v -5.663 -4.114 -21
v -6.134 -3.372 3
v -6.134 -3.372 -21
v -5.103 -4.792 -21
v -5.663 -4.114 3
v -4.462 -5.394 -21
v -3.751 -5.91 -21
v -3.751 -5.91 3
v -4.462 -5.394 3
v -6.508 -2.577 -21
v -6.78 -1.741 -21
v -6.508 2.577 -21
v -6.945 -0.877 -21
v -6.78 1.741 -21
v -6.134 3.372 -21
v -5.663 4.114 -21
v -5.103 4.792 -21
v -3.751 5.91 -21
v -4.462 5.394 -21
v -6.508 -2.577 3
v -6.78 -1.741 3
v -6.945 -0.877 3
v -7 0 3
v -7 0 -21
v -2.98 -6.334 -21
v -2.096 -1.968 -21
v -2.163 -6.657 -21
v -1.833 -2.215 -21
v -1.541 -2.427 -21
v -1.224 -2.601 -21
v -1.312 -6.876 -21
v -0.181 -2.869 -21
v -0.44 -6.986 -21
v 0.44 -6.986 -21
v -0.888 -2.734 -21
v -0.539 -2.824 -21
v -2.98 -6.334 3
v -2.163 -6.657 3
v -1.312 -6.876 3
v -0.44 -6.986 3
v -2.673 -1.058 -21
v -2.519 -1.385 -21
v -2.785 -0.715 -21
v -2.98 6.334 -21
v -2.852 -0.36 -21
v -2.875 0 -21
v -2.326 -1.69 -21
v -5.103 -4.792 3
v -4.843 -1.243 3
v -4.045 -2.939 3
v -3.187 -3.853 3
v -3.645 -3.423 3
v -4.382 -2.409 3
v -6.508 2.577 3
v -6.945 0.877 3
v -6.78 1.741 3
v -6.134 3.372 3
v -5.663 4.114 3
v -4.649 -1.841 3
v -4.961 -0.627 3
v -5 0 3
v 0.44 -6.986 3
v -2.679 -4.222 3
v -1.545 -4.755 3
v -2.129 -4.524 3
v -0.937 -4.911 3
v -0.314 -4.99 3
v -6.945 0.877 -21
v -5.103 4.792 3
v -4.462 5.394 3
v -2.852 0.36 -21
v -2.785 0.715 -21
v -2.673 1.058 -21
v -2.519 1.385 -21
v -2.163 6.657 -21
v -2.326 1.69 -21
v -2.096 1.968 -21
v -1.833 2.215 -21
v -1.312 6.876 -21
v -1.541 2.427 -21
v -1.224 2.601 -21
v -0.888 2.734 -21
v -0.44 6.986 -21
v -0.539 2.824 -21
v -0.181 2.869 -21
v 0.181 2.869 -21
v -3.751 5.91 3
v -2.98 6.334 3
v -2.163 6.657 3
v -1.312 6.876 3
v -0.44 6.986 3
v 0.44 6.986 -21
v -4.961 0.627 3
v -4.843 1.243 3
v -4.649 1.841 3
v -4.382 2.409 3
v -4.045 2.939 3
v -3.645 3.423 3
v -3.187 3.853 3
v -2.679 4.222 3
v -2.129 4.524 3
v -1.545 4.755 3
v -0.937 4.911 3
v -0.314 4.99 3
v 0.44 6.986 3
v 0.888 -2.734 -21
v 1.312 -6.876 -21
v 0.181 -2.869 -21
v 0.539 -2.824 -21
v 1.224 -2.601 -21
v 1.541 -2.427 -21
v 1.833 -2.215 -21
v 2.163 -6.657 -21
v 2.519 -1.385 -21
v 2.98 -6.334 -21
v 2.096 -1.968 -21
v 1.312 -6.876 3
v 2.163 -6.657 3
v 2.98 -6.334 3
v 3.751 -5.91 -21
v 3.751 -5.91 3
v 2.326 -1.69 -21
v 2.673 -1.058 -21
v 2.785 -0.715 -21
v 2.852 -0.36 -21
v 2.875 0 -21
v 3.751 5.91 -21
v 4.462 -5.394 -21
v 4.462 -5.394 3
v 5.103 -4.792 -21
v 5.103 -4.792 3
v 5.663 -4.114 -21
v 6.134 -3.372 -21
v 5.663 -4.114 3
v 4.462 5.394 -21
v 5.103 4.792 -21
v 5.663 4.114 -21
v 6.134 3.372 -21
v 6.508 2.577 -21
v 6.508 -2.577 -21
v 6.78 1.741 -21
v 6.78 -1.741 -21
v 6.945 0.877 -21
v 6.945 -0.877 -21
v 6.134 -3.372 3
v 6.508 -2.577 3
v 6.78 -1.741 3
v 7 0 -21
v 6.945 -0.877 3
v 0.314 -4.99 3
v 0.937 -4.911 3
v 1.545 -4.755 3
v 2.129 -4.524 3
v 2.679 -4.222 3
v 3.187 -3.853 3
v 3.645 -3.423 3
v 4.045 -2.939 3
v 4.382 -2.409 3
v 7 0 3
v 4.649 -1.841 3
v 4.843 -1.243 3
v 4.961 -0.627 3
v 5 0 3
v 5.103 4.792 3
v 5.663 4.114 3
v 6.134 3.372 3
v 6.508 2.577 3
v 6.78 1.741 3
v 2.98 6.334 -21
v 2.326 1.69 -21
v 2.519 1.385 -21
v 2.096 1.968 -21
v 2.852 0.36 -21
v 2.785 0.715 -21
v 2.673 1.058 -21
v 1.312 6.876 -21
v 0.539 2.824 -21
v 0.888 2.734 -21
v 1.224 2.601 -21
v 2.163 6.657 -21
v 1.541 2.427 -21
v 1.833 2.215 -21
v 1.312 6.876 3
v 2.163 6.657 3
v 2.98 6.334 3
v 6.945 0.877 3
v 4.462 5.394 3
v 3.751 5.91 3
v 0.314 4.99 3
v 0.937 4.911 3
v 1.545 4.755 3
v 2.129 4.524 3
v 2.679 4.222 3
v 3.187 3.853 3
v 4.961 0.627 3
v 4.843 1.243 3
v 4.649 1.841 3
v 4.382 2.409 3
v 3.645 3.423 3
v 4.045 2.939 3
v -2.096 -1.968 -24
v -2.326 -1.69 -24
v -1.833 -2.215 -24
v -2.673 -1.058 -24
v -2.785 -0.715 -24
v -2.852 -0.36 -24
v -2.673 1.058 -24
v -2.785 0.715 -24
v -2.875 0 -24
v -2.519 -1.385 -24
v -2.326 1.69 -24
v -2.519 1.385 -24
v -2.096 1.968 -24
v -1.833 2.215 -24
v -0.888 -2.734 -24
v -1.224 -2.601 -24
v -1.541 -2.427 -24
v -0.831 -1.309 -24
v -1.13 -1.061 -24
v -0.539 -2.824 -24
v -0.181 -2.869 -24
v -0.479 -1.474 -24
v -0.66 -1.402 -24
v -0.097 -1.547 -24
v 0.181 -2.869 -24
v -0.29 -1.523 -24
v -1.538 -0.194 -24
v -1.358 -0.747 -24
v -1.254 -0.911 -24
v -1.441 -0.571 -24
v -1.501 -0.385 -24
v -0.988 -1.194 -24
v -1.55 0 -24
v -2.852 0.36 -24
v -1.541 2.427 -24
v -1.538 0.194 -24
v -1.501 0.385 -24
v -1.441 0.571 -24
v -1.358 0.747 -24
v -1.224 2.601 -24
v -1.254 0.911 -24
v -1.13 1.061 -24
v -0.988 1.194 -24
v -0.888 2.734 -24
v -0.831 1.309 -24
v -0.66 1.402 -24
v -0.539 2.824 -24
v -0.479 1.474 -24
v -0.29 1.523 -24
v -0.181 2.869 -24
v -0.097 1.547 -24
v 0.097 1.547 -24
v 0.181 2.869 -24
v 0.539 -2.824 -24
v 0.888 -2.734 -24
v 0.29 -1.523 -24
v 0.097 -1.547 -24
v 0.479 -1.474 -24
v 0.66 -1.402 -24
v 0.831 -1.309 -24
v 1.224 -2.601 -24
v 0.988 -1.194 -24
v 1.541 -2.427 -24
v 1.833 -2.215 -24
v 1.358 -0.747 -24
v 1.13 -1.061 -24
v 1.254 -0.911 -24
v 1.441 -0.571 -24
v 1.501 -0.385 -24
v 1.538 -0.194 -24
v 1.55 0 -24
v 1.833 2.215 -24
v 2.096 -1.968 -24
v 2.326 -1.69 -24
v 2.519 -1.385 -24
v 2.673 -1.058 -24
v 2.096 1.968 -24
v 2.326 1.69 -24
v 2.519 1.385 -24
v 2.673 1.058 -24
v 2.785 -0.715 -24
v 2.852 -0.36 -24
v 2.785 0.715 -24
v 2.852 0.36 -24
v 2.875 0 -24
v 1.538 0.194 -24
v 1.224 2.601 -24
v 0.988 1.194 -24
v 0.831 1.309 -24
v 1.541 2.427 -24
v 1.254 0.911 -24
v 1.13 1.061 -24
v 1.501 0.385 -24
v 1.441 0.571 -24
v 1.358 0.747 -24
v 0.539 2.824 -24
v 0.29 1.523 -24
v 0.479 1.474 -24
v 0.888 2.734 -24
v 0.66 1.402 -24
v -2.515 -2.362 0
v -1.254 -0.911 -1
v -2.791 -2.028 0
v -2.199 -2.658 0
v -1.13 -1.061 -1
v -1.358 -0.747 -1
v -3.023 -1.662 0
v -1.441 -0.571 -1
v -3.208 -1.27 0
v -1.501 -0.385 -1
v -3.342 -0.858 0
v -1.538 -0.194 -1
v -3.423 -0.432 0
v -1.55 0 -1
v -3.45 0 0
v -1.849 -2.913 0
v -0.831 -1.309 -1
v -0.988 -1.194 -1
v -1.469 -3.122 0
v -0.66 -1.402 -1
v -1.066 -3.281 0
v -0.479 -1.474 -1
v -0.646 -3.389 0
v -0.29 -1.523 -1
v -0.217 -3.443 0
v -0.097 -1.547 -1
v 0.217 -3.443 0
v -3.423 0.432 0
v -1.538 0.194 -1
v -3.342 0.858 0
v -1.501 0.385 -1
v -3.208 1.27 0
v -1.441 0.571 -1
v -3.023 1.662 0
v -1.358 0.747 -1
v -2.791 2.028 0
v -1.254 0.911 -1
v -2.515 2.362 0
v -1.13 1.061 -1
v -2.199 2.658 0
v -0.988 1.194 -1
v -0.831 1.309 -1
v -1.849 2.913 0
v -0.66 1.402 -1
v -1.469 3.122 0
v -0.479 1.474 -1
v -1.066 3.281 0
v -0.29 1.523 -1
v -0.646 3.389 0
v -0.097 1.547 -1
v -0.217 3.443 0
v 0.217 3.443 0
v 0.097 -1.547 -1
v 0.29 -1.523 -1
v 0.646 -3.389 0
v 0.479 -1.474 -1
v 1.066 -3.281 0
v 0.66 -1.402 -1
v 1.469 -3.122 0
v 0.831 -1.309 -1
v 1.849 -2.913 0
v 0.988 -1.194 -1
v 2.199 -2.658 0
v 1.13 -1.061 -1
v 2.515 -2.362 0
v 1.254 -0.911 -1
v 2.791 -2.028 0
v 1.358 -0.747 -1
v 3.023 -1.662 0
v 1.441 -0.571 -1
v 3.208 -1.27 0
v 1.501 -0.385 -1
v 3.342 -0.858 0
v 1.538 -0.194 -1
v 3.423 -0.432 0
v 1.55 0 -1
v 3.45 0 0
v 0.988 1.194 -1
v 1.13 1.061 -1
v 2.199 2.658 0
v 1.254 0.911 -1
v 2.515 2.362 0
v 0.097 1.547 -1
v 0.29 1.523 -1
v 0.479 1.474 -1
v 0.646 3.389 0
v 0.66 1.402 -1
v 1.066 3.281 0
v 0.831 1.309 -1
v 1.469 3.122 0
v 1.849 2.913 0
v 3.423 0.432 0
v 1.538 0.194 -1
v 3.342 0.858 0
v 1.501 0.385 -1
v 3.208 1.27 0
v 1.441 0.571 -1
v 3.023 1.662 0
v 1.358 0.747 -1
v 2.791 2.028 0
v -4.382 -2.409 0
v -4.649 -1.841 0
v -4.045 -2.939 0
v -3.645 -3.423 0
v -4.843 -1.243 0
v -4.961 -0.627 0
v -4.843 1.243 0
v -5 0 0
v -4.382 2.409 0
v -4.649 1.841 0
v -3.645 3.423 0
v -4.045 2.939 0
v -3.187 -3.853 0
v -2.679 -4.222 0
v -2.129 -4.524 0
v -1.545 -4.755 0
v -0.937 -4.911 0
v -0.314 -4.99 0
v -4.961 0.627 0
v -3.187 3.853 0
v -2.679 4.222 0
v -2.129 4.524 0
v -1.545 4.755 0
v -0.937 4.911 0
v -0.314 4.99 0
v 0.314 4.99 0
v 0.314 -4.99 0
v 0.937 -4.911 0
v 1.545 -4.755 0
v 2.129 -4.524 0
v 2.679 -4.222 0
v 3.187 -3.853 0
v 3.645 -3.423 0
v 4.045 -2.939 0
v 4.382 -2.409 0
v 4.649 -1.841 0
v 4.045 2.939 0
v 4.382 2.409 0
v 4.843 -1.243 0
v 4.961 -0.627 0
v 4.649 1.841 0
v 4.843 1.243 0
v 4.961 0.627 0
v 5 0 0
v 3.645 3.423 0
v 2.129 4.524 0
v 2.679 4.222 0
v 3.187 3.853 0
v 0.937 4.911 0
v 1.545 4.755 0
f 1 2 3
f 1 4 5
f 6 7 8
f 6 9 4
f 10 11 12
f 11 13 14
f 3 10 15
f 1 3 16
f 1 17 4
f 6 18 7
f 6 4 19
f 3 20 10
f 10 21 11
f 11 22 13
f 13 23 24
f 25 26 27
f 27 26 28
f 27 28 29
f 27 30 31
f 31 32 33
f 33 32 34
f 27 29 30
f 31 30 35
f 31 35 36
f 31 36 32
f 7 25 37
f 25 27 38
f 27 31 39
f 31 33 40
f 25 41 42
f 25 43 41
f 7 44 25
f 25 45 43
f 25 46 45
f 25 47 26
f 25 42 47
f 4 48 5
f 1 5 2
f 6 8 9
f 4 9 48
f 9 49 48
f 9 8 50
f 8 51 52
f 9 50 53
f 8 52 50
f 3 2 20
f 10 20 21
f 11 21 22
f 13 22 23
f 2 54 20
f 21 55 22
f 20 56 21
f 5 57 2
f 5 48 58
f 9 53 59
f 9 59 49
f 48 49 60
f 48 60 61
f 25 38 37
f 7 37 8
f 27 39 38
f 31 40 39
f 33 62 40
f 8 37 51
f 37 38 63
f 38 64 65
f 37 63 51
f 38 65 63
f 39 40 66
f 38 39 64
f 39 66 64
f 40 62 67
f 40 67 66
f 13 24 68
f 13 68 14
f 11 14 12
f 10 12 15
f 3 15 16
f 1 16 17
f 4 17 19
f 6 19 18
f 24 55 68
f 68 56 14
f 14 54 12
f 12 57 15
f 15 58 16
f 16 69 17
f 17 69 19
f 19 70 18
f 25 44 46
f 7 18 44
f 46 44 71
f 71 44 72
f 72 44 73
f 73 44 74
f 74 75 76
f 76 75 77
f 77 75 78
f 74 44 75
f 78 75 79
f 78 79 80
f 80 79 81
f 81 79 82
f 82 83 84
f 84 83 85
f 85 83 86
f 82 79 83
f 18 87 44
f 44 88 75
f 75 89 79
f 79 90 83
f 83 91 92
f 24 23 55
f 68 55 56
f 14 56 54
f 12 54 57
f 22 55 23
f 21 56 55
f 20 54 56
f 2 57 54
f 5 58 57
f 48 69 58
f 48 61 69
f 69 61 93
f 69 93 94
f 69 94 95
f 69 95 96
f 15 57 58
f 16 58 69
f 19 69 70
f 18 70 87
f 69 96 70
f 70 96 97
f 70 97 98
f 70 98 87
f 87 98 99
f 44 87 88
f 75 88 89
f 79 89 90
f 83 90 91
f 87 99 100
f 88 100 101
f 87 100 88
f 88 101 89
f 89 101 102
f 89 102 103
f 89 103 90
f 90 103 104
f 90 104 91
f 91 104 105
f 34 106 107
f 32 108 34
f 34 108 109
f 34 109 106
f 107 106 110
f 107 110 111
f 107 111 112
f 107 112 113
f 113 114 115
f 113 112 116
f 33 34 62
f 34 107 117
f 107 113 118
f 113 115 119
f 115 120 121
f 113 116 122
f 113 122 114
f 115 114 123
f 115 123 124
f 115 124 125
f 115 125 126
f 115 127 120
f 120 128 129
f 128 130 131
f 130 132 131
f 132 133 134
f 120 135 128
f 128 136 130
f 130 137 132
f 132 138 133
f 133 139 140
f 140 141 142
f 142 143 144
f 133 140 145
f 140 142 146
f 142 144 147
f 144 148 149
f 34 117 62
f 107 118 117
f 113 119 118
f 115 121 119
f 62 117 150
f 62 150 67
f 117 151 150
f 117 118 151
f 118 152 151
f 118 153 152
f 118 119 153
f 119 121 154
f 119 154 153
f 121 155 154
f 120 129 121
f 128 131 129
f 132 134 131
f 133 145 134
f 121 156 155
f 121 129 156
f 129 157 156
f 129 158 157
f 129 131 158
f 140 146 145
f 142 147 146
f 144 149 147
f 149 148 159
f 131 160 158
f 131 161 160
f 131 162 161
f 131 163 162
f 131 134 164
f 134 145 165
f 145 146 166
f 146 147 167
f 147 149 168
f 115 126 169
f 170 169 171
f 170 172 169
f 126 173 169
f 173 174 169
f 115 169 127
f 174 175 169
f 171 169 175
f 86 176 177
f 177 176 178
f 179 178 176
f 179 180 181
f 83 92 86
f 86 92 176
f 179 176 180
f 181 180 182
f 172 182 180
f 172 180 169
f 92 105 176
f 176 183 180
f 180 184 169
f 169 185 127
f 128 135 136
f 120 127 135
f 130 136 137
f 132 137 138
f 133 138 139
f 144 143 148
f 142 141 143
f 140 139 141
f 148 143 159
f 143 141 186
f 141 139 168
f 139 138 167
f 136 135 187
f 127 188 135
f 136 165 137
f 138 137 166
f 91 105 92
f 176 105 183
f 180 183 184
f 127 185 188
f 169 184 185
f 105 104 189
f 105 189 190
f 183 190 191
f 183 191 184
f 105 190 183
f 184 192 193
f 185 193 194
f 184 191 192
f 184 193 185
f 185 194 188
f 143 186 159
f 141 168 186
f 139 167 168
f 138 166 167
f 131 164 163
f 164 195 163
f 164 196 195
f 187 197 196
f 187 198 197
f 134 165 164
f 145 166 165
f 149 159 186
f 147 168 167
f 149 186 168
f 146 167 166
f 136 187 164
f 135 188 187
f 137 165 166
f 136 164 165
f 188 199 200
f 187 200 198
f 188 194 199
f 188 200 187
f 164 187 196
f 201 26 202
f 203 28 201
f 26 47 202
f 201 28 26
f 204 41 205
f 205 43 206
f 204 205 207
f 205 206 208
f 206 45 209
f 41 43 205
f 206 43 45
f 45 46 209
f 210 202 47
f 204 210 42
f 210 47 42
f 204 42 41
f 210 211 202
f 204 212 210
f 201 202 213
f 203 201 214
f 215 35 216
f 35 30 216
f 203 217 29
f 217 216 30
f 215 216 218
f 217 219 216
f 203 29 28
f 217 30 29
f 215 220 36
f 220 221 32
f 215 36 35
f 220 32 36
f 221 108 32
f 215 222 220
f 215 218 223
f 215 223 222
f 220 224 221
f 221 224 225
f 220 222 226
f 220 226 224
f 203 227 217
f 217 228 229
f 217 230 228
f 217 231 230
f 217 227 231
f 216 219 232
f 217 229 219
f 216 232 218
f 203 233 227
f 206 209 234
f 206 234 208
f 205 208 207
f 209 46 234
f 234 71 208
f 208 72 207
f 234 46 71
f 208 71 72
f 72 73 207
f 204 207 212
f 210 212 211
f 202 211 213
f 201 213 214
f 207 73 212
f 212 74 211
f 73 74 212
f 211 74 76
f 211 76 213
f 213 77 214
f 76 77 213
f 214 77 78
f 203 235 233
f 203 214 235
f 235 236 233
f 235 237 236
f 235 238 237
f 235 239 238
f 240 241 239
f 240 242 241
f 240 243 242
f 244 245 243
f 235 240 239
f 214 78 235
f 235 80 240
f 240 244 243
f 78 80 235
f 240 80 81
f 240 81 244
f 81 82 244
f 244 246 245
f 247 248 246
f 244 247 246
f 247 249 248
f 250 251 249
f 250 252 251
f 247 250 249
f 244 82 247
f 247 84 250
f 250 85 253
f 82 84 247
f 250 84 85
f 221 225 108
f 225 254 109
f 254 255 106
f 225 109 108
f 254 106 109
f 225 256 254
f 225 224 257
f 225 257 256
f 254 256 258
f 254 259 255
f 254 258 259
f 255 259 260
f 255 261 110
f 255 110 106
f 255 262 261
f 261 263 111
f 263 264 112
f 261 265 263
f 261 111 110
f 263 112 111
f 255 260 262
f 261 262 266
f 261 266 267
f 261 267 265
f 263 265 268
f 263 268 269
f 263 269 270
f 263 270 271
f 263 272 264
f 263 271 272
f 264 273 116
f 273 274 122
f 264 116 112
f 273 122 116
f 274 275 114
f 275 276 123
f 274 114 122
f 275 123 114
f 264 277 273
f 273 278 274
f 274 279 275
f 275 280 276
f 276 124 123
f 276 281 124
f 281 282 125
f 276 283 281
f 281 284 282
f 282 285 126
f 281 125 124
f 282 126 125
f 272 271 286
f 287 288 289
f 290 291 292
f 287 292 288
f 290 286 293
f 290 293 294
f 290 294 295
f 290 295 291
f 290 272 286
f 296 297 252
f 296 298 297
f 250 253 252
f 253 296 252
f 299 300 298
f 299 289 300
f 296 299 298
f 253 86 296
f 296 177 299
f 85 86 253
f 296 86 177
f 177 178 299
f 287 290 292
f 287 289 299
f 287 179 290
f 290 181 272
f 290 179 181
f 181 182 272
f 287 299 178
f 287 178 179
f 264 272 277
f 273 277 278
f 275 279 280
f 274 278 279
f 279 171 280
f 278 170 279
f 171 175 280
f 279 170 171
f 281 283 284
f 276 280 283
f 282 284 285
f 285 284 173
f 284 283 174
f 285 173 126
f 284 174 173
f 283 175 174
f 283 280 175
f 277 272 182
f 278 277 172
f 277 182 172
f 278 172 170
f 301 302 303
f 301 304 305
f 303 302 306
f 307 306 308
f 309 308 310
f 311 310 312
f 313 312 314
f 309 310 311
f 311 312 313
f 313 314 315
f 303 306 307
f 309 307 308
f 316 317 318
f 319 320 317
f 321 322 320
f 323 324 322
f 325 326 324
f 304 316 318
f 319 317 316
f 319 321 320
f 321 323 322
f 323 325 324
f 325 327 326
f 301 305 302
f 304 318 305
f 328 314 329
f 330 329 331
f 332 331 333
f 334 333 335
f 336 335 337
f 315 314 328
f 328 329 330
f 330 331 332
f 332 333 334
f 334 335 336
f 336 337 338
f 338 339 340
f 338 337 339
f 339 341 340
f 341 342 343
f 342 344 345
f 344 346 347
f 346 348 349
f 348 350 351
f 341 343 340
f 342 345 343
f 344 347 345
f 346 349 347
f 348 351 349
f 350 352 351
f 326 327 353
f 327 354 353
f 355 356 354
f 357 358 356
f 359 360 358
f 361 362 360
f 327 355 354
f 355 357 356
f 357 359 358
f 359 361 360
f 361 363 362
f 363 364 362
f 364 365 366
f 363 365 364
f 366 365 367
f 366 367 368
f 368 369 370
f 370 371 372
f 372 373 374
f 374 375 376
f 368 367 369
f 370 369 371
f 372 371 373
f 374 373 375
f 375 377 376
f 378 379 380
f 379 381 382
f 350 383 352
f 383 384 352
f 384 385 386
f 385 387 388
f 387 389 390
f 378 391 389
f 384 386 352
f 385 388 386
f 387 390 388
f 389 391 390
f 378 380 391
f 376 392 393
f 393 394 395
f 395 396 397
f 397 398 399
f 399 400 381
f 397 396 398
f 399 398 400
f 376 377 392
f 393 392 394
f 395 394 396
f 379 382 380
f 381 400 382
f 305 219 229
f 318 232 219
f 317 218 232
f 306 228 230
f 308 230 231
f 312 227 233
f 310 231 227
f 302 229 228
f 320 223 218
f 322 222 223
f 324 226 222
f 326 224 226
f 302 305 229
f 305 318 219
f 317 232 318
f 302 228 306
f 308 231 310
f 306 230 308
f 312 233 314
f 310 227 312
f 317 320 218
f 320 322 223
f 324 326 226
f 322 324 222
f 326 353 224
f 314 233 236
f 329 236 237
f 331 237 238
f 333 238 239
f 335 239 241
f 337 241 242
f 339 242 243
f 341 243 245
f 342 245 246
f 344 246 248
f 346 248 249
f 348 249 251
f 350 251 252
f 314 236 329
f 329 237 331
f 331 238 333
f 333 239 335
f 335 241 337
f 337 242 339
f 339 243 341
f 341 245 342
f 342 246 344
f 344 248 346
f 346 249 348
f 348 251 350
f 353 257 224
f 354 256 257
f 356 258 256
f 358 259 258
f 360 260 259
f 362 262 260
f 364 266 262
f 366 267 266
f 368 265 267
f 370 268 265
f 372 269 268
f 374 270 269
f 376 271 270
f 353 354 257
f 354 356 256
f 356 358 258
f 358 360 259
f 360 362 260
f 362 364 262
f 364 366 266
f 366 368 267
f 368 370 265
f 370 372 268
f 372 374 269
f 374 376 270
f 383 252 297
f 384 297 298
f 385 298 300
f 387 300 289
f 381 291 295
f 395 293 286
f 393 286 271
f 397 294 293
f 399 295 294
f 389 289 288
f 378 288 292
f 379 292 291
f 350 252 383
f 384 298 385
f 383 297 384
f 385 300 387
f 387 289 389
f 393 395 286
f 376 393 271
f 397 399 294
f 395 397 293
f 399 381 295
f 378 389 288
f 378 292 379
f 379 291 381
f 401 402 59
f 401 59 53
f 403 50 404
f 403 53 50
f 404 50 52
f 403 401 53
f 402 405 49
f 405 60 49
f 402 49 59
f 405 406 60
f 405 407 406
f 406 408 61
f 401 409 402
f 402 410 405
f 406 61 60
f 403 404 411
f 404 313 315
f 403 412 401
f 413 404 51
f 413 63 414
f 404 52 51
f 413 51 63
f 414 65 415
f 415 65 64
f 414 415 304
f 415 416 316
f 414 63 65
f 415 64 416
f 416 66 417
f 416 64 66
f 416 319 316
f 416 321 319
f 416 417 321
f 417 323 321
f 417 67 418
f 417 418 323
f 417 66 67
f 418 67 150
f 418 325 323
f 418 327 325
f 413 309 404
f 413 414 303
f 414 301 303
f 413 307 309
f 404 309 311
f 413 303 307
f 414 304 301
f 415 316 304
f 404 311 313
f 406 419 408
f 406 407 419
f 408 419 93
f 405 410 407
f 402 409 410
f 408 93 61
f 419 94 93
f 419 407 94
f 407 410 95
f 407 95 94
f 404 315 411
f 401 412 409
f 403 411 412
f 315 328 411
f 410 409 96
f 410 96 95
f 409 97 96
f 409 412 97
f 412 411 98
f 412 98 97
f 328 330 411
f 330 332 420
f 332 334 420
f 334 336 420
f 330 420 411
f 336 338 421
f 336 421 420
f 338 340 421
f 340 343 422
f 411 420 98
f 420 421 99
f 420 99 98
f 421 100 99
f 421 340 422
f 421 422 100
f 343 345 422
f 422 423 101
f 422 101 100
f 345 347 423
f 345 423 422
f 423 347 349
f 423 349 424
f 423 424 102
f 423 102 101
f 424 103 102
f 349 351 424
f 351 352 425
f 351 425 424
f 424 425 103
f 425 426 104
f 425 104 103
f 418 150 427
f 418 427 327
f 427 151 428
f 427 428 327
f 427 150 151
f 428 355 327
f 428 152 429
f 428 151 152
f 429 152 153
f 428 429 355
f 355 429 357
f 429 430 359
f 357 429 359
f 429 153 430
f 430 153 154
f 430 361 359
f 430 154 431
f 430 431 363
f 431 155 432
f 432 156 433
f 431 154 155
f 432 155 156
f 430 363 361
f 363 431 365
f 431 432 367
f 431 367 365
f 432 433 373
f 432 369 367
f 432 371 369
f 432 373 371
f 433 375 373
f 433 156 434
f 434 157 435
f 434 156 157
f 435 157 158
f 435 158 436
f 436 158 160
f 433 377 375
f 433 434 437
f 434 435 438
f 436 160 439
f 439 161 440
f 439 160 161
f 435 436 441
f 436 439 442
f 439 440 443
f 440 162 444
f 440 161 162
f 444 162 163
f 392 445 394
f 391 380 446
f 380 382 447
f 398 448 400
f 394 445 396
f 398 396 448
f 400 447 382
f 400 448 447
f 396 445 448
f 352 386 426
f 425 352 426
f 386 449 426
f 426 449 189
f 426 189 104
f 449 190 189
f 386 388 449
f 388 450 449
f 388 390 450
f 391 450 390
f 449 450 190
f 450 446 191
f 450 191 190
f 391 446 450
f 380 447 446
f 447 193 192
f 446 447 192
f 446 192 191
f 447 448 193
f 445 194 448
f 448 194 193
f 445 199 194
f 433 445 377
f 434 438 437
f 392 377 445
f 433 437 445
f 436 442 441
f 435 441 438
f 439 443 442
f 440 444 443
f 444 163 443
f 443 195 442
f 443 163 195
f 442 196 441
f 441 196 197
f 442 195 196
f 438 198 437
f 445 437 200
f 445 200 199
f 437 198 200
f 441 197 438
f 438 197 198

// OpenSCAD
$fn = 50;


difference() {
	union() {
		translate(v = [0, 0, -21.0000000000]) {
			cylinder(h = 24, r = 7.0000000000);
		}
		#translate(v = [0, 0, -24.0000000000]) {
			cylinder(h = 24, r = 2.8750000000);
		}
	}
	union() {
		translate(v = [0, 0, 0]) {
			rotate(a = [0, 0, 0]) {
				difference() {
					union() {
						translate(v = [0, 0, -24.0000000000]) {
							cylinder(h = 24, r = 1.2500000000);
						}
						translate(v = [0, 0, -1.0000000000]) {
							cylinder(h = 1.0000000000, r1 = 1.5500000000, r2 = 3.4500000000);
						}
						translate(v = [0, 0, -24.0000000000]) {
							cylinder(h = 24, r = 1.5500000000);
						}
						translate(v = [0, 0, -24.0000000000]) {
							cylinder(h = 24, r = 1.2500000000);
						}
					}
					union();
				}
			}
		}
		#cylinder(h = 3, r = 5.0000000000);
	}
}
